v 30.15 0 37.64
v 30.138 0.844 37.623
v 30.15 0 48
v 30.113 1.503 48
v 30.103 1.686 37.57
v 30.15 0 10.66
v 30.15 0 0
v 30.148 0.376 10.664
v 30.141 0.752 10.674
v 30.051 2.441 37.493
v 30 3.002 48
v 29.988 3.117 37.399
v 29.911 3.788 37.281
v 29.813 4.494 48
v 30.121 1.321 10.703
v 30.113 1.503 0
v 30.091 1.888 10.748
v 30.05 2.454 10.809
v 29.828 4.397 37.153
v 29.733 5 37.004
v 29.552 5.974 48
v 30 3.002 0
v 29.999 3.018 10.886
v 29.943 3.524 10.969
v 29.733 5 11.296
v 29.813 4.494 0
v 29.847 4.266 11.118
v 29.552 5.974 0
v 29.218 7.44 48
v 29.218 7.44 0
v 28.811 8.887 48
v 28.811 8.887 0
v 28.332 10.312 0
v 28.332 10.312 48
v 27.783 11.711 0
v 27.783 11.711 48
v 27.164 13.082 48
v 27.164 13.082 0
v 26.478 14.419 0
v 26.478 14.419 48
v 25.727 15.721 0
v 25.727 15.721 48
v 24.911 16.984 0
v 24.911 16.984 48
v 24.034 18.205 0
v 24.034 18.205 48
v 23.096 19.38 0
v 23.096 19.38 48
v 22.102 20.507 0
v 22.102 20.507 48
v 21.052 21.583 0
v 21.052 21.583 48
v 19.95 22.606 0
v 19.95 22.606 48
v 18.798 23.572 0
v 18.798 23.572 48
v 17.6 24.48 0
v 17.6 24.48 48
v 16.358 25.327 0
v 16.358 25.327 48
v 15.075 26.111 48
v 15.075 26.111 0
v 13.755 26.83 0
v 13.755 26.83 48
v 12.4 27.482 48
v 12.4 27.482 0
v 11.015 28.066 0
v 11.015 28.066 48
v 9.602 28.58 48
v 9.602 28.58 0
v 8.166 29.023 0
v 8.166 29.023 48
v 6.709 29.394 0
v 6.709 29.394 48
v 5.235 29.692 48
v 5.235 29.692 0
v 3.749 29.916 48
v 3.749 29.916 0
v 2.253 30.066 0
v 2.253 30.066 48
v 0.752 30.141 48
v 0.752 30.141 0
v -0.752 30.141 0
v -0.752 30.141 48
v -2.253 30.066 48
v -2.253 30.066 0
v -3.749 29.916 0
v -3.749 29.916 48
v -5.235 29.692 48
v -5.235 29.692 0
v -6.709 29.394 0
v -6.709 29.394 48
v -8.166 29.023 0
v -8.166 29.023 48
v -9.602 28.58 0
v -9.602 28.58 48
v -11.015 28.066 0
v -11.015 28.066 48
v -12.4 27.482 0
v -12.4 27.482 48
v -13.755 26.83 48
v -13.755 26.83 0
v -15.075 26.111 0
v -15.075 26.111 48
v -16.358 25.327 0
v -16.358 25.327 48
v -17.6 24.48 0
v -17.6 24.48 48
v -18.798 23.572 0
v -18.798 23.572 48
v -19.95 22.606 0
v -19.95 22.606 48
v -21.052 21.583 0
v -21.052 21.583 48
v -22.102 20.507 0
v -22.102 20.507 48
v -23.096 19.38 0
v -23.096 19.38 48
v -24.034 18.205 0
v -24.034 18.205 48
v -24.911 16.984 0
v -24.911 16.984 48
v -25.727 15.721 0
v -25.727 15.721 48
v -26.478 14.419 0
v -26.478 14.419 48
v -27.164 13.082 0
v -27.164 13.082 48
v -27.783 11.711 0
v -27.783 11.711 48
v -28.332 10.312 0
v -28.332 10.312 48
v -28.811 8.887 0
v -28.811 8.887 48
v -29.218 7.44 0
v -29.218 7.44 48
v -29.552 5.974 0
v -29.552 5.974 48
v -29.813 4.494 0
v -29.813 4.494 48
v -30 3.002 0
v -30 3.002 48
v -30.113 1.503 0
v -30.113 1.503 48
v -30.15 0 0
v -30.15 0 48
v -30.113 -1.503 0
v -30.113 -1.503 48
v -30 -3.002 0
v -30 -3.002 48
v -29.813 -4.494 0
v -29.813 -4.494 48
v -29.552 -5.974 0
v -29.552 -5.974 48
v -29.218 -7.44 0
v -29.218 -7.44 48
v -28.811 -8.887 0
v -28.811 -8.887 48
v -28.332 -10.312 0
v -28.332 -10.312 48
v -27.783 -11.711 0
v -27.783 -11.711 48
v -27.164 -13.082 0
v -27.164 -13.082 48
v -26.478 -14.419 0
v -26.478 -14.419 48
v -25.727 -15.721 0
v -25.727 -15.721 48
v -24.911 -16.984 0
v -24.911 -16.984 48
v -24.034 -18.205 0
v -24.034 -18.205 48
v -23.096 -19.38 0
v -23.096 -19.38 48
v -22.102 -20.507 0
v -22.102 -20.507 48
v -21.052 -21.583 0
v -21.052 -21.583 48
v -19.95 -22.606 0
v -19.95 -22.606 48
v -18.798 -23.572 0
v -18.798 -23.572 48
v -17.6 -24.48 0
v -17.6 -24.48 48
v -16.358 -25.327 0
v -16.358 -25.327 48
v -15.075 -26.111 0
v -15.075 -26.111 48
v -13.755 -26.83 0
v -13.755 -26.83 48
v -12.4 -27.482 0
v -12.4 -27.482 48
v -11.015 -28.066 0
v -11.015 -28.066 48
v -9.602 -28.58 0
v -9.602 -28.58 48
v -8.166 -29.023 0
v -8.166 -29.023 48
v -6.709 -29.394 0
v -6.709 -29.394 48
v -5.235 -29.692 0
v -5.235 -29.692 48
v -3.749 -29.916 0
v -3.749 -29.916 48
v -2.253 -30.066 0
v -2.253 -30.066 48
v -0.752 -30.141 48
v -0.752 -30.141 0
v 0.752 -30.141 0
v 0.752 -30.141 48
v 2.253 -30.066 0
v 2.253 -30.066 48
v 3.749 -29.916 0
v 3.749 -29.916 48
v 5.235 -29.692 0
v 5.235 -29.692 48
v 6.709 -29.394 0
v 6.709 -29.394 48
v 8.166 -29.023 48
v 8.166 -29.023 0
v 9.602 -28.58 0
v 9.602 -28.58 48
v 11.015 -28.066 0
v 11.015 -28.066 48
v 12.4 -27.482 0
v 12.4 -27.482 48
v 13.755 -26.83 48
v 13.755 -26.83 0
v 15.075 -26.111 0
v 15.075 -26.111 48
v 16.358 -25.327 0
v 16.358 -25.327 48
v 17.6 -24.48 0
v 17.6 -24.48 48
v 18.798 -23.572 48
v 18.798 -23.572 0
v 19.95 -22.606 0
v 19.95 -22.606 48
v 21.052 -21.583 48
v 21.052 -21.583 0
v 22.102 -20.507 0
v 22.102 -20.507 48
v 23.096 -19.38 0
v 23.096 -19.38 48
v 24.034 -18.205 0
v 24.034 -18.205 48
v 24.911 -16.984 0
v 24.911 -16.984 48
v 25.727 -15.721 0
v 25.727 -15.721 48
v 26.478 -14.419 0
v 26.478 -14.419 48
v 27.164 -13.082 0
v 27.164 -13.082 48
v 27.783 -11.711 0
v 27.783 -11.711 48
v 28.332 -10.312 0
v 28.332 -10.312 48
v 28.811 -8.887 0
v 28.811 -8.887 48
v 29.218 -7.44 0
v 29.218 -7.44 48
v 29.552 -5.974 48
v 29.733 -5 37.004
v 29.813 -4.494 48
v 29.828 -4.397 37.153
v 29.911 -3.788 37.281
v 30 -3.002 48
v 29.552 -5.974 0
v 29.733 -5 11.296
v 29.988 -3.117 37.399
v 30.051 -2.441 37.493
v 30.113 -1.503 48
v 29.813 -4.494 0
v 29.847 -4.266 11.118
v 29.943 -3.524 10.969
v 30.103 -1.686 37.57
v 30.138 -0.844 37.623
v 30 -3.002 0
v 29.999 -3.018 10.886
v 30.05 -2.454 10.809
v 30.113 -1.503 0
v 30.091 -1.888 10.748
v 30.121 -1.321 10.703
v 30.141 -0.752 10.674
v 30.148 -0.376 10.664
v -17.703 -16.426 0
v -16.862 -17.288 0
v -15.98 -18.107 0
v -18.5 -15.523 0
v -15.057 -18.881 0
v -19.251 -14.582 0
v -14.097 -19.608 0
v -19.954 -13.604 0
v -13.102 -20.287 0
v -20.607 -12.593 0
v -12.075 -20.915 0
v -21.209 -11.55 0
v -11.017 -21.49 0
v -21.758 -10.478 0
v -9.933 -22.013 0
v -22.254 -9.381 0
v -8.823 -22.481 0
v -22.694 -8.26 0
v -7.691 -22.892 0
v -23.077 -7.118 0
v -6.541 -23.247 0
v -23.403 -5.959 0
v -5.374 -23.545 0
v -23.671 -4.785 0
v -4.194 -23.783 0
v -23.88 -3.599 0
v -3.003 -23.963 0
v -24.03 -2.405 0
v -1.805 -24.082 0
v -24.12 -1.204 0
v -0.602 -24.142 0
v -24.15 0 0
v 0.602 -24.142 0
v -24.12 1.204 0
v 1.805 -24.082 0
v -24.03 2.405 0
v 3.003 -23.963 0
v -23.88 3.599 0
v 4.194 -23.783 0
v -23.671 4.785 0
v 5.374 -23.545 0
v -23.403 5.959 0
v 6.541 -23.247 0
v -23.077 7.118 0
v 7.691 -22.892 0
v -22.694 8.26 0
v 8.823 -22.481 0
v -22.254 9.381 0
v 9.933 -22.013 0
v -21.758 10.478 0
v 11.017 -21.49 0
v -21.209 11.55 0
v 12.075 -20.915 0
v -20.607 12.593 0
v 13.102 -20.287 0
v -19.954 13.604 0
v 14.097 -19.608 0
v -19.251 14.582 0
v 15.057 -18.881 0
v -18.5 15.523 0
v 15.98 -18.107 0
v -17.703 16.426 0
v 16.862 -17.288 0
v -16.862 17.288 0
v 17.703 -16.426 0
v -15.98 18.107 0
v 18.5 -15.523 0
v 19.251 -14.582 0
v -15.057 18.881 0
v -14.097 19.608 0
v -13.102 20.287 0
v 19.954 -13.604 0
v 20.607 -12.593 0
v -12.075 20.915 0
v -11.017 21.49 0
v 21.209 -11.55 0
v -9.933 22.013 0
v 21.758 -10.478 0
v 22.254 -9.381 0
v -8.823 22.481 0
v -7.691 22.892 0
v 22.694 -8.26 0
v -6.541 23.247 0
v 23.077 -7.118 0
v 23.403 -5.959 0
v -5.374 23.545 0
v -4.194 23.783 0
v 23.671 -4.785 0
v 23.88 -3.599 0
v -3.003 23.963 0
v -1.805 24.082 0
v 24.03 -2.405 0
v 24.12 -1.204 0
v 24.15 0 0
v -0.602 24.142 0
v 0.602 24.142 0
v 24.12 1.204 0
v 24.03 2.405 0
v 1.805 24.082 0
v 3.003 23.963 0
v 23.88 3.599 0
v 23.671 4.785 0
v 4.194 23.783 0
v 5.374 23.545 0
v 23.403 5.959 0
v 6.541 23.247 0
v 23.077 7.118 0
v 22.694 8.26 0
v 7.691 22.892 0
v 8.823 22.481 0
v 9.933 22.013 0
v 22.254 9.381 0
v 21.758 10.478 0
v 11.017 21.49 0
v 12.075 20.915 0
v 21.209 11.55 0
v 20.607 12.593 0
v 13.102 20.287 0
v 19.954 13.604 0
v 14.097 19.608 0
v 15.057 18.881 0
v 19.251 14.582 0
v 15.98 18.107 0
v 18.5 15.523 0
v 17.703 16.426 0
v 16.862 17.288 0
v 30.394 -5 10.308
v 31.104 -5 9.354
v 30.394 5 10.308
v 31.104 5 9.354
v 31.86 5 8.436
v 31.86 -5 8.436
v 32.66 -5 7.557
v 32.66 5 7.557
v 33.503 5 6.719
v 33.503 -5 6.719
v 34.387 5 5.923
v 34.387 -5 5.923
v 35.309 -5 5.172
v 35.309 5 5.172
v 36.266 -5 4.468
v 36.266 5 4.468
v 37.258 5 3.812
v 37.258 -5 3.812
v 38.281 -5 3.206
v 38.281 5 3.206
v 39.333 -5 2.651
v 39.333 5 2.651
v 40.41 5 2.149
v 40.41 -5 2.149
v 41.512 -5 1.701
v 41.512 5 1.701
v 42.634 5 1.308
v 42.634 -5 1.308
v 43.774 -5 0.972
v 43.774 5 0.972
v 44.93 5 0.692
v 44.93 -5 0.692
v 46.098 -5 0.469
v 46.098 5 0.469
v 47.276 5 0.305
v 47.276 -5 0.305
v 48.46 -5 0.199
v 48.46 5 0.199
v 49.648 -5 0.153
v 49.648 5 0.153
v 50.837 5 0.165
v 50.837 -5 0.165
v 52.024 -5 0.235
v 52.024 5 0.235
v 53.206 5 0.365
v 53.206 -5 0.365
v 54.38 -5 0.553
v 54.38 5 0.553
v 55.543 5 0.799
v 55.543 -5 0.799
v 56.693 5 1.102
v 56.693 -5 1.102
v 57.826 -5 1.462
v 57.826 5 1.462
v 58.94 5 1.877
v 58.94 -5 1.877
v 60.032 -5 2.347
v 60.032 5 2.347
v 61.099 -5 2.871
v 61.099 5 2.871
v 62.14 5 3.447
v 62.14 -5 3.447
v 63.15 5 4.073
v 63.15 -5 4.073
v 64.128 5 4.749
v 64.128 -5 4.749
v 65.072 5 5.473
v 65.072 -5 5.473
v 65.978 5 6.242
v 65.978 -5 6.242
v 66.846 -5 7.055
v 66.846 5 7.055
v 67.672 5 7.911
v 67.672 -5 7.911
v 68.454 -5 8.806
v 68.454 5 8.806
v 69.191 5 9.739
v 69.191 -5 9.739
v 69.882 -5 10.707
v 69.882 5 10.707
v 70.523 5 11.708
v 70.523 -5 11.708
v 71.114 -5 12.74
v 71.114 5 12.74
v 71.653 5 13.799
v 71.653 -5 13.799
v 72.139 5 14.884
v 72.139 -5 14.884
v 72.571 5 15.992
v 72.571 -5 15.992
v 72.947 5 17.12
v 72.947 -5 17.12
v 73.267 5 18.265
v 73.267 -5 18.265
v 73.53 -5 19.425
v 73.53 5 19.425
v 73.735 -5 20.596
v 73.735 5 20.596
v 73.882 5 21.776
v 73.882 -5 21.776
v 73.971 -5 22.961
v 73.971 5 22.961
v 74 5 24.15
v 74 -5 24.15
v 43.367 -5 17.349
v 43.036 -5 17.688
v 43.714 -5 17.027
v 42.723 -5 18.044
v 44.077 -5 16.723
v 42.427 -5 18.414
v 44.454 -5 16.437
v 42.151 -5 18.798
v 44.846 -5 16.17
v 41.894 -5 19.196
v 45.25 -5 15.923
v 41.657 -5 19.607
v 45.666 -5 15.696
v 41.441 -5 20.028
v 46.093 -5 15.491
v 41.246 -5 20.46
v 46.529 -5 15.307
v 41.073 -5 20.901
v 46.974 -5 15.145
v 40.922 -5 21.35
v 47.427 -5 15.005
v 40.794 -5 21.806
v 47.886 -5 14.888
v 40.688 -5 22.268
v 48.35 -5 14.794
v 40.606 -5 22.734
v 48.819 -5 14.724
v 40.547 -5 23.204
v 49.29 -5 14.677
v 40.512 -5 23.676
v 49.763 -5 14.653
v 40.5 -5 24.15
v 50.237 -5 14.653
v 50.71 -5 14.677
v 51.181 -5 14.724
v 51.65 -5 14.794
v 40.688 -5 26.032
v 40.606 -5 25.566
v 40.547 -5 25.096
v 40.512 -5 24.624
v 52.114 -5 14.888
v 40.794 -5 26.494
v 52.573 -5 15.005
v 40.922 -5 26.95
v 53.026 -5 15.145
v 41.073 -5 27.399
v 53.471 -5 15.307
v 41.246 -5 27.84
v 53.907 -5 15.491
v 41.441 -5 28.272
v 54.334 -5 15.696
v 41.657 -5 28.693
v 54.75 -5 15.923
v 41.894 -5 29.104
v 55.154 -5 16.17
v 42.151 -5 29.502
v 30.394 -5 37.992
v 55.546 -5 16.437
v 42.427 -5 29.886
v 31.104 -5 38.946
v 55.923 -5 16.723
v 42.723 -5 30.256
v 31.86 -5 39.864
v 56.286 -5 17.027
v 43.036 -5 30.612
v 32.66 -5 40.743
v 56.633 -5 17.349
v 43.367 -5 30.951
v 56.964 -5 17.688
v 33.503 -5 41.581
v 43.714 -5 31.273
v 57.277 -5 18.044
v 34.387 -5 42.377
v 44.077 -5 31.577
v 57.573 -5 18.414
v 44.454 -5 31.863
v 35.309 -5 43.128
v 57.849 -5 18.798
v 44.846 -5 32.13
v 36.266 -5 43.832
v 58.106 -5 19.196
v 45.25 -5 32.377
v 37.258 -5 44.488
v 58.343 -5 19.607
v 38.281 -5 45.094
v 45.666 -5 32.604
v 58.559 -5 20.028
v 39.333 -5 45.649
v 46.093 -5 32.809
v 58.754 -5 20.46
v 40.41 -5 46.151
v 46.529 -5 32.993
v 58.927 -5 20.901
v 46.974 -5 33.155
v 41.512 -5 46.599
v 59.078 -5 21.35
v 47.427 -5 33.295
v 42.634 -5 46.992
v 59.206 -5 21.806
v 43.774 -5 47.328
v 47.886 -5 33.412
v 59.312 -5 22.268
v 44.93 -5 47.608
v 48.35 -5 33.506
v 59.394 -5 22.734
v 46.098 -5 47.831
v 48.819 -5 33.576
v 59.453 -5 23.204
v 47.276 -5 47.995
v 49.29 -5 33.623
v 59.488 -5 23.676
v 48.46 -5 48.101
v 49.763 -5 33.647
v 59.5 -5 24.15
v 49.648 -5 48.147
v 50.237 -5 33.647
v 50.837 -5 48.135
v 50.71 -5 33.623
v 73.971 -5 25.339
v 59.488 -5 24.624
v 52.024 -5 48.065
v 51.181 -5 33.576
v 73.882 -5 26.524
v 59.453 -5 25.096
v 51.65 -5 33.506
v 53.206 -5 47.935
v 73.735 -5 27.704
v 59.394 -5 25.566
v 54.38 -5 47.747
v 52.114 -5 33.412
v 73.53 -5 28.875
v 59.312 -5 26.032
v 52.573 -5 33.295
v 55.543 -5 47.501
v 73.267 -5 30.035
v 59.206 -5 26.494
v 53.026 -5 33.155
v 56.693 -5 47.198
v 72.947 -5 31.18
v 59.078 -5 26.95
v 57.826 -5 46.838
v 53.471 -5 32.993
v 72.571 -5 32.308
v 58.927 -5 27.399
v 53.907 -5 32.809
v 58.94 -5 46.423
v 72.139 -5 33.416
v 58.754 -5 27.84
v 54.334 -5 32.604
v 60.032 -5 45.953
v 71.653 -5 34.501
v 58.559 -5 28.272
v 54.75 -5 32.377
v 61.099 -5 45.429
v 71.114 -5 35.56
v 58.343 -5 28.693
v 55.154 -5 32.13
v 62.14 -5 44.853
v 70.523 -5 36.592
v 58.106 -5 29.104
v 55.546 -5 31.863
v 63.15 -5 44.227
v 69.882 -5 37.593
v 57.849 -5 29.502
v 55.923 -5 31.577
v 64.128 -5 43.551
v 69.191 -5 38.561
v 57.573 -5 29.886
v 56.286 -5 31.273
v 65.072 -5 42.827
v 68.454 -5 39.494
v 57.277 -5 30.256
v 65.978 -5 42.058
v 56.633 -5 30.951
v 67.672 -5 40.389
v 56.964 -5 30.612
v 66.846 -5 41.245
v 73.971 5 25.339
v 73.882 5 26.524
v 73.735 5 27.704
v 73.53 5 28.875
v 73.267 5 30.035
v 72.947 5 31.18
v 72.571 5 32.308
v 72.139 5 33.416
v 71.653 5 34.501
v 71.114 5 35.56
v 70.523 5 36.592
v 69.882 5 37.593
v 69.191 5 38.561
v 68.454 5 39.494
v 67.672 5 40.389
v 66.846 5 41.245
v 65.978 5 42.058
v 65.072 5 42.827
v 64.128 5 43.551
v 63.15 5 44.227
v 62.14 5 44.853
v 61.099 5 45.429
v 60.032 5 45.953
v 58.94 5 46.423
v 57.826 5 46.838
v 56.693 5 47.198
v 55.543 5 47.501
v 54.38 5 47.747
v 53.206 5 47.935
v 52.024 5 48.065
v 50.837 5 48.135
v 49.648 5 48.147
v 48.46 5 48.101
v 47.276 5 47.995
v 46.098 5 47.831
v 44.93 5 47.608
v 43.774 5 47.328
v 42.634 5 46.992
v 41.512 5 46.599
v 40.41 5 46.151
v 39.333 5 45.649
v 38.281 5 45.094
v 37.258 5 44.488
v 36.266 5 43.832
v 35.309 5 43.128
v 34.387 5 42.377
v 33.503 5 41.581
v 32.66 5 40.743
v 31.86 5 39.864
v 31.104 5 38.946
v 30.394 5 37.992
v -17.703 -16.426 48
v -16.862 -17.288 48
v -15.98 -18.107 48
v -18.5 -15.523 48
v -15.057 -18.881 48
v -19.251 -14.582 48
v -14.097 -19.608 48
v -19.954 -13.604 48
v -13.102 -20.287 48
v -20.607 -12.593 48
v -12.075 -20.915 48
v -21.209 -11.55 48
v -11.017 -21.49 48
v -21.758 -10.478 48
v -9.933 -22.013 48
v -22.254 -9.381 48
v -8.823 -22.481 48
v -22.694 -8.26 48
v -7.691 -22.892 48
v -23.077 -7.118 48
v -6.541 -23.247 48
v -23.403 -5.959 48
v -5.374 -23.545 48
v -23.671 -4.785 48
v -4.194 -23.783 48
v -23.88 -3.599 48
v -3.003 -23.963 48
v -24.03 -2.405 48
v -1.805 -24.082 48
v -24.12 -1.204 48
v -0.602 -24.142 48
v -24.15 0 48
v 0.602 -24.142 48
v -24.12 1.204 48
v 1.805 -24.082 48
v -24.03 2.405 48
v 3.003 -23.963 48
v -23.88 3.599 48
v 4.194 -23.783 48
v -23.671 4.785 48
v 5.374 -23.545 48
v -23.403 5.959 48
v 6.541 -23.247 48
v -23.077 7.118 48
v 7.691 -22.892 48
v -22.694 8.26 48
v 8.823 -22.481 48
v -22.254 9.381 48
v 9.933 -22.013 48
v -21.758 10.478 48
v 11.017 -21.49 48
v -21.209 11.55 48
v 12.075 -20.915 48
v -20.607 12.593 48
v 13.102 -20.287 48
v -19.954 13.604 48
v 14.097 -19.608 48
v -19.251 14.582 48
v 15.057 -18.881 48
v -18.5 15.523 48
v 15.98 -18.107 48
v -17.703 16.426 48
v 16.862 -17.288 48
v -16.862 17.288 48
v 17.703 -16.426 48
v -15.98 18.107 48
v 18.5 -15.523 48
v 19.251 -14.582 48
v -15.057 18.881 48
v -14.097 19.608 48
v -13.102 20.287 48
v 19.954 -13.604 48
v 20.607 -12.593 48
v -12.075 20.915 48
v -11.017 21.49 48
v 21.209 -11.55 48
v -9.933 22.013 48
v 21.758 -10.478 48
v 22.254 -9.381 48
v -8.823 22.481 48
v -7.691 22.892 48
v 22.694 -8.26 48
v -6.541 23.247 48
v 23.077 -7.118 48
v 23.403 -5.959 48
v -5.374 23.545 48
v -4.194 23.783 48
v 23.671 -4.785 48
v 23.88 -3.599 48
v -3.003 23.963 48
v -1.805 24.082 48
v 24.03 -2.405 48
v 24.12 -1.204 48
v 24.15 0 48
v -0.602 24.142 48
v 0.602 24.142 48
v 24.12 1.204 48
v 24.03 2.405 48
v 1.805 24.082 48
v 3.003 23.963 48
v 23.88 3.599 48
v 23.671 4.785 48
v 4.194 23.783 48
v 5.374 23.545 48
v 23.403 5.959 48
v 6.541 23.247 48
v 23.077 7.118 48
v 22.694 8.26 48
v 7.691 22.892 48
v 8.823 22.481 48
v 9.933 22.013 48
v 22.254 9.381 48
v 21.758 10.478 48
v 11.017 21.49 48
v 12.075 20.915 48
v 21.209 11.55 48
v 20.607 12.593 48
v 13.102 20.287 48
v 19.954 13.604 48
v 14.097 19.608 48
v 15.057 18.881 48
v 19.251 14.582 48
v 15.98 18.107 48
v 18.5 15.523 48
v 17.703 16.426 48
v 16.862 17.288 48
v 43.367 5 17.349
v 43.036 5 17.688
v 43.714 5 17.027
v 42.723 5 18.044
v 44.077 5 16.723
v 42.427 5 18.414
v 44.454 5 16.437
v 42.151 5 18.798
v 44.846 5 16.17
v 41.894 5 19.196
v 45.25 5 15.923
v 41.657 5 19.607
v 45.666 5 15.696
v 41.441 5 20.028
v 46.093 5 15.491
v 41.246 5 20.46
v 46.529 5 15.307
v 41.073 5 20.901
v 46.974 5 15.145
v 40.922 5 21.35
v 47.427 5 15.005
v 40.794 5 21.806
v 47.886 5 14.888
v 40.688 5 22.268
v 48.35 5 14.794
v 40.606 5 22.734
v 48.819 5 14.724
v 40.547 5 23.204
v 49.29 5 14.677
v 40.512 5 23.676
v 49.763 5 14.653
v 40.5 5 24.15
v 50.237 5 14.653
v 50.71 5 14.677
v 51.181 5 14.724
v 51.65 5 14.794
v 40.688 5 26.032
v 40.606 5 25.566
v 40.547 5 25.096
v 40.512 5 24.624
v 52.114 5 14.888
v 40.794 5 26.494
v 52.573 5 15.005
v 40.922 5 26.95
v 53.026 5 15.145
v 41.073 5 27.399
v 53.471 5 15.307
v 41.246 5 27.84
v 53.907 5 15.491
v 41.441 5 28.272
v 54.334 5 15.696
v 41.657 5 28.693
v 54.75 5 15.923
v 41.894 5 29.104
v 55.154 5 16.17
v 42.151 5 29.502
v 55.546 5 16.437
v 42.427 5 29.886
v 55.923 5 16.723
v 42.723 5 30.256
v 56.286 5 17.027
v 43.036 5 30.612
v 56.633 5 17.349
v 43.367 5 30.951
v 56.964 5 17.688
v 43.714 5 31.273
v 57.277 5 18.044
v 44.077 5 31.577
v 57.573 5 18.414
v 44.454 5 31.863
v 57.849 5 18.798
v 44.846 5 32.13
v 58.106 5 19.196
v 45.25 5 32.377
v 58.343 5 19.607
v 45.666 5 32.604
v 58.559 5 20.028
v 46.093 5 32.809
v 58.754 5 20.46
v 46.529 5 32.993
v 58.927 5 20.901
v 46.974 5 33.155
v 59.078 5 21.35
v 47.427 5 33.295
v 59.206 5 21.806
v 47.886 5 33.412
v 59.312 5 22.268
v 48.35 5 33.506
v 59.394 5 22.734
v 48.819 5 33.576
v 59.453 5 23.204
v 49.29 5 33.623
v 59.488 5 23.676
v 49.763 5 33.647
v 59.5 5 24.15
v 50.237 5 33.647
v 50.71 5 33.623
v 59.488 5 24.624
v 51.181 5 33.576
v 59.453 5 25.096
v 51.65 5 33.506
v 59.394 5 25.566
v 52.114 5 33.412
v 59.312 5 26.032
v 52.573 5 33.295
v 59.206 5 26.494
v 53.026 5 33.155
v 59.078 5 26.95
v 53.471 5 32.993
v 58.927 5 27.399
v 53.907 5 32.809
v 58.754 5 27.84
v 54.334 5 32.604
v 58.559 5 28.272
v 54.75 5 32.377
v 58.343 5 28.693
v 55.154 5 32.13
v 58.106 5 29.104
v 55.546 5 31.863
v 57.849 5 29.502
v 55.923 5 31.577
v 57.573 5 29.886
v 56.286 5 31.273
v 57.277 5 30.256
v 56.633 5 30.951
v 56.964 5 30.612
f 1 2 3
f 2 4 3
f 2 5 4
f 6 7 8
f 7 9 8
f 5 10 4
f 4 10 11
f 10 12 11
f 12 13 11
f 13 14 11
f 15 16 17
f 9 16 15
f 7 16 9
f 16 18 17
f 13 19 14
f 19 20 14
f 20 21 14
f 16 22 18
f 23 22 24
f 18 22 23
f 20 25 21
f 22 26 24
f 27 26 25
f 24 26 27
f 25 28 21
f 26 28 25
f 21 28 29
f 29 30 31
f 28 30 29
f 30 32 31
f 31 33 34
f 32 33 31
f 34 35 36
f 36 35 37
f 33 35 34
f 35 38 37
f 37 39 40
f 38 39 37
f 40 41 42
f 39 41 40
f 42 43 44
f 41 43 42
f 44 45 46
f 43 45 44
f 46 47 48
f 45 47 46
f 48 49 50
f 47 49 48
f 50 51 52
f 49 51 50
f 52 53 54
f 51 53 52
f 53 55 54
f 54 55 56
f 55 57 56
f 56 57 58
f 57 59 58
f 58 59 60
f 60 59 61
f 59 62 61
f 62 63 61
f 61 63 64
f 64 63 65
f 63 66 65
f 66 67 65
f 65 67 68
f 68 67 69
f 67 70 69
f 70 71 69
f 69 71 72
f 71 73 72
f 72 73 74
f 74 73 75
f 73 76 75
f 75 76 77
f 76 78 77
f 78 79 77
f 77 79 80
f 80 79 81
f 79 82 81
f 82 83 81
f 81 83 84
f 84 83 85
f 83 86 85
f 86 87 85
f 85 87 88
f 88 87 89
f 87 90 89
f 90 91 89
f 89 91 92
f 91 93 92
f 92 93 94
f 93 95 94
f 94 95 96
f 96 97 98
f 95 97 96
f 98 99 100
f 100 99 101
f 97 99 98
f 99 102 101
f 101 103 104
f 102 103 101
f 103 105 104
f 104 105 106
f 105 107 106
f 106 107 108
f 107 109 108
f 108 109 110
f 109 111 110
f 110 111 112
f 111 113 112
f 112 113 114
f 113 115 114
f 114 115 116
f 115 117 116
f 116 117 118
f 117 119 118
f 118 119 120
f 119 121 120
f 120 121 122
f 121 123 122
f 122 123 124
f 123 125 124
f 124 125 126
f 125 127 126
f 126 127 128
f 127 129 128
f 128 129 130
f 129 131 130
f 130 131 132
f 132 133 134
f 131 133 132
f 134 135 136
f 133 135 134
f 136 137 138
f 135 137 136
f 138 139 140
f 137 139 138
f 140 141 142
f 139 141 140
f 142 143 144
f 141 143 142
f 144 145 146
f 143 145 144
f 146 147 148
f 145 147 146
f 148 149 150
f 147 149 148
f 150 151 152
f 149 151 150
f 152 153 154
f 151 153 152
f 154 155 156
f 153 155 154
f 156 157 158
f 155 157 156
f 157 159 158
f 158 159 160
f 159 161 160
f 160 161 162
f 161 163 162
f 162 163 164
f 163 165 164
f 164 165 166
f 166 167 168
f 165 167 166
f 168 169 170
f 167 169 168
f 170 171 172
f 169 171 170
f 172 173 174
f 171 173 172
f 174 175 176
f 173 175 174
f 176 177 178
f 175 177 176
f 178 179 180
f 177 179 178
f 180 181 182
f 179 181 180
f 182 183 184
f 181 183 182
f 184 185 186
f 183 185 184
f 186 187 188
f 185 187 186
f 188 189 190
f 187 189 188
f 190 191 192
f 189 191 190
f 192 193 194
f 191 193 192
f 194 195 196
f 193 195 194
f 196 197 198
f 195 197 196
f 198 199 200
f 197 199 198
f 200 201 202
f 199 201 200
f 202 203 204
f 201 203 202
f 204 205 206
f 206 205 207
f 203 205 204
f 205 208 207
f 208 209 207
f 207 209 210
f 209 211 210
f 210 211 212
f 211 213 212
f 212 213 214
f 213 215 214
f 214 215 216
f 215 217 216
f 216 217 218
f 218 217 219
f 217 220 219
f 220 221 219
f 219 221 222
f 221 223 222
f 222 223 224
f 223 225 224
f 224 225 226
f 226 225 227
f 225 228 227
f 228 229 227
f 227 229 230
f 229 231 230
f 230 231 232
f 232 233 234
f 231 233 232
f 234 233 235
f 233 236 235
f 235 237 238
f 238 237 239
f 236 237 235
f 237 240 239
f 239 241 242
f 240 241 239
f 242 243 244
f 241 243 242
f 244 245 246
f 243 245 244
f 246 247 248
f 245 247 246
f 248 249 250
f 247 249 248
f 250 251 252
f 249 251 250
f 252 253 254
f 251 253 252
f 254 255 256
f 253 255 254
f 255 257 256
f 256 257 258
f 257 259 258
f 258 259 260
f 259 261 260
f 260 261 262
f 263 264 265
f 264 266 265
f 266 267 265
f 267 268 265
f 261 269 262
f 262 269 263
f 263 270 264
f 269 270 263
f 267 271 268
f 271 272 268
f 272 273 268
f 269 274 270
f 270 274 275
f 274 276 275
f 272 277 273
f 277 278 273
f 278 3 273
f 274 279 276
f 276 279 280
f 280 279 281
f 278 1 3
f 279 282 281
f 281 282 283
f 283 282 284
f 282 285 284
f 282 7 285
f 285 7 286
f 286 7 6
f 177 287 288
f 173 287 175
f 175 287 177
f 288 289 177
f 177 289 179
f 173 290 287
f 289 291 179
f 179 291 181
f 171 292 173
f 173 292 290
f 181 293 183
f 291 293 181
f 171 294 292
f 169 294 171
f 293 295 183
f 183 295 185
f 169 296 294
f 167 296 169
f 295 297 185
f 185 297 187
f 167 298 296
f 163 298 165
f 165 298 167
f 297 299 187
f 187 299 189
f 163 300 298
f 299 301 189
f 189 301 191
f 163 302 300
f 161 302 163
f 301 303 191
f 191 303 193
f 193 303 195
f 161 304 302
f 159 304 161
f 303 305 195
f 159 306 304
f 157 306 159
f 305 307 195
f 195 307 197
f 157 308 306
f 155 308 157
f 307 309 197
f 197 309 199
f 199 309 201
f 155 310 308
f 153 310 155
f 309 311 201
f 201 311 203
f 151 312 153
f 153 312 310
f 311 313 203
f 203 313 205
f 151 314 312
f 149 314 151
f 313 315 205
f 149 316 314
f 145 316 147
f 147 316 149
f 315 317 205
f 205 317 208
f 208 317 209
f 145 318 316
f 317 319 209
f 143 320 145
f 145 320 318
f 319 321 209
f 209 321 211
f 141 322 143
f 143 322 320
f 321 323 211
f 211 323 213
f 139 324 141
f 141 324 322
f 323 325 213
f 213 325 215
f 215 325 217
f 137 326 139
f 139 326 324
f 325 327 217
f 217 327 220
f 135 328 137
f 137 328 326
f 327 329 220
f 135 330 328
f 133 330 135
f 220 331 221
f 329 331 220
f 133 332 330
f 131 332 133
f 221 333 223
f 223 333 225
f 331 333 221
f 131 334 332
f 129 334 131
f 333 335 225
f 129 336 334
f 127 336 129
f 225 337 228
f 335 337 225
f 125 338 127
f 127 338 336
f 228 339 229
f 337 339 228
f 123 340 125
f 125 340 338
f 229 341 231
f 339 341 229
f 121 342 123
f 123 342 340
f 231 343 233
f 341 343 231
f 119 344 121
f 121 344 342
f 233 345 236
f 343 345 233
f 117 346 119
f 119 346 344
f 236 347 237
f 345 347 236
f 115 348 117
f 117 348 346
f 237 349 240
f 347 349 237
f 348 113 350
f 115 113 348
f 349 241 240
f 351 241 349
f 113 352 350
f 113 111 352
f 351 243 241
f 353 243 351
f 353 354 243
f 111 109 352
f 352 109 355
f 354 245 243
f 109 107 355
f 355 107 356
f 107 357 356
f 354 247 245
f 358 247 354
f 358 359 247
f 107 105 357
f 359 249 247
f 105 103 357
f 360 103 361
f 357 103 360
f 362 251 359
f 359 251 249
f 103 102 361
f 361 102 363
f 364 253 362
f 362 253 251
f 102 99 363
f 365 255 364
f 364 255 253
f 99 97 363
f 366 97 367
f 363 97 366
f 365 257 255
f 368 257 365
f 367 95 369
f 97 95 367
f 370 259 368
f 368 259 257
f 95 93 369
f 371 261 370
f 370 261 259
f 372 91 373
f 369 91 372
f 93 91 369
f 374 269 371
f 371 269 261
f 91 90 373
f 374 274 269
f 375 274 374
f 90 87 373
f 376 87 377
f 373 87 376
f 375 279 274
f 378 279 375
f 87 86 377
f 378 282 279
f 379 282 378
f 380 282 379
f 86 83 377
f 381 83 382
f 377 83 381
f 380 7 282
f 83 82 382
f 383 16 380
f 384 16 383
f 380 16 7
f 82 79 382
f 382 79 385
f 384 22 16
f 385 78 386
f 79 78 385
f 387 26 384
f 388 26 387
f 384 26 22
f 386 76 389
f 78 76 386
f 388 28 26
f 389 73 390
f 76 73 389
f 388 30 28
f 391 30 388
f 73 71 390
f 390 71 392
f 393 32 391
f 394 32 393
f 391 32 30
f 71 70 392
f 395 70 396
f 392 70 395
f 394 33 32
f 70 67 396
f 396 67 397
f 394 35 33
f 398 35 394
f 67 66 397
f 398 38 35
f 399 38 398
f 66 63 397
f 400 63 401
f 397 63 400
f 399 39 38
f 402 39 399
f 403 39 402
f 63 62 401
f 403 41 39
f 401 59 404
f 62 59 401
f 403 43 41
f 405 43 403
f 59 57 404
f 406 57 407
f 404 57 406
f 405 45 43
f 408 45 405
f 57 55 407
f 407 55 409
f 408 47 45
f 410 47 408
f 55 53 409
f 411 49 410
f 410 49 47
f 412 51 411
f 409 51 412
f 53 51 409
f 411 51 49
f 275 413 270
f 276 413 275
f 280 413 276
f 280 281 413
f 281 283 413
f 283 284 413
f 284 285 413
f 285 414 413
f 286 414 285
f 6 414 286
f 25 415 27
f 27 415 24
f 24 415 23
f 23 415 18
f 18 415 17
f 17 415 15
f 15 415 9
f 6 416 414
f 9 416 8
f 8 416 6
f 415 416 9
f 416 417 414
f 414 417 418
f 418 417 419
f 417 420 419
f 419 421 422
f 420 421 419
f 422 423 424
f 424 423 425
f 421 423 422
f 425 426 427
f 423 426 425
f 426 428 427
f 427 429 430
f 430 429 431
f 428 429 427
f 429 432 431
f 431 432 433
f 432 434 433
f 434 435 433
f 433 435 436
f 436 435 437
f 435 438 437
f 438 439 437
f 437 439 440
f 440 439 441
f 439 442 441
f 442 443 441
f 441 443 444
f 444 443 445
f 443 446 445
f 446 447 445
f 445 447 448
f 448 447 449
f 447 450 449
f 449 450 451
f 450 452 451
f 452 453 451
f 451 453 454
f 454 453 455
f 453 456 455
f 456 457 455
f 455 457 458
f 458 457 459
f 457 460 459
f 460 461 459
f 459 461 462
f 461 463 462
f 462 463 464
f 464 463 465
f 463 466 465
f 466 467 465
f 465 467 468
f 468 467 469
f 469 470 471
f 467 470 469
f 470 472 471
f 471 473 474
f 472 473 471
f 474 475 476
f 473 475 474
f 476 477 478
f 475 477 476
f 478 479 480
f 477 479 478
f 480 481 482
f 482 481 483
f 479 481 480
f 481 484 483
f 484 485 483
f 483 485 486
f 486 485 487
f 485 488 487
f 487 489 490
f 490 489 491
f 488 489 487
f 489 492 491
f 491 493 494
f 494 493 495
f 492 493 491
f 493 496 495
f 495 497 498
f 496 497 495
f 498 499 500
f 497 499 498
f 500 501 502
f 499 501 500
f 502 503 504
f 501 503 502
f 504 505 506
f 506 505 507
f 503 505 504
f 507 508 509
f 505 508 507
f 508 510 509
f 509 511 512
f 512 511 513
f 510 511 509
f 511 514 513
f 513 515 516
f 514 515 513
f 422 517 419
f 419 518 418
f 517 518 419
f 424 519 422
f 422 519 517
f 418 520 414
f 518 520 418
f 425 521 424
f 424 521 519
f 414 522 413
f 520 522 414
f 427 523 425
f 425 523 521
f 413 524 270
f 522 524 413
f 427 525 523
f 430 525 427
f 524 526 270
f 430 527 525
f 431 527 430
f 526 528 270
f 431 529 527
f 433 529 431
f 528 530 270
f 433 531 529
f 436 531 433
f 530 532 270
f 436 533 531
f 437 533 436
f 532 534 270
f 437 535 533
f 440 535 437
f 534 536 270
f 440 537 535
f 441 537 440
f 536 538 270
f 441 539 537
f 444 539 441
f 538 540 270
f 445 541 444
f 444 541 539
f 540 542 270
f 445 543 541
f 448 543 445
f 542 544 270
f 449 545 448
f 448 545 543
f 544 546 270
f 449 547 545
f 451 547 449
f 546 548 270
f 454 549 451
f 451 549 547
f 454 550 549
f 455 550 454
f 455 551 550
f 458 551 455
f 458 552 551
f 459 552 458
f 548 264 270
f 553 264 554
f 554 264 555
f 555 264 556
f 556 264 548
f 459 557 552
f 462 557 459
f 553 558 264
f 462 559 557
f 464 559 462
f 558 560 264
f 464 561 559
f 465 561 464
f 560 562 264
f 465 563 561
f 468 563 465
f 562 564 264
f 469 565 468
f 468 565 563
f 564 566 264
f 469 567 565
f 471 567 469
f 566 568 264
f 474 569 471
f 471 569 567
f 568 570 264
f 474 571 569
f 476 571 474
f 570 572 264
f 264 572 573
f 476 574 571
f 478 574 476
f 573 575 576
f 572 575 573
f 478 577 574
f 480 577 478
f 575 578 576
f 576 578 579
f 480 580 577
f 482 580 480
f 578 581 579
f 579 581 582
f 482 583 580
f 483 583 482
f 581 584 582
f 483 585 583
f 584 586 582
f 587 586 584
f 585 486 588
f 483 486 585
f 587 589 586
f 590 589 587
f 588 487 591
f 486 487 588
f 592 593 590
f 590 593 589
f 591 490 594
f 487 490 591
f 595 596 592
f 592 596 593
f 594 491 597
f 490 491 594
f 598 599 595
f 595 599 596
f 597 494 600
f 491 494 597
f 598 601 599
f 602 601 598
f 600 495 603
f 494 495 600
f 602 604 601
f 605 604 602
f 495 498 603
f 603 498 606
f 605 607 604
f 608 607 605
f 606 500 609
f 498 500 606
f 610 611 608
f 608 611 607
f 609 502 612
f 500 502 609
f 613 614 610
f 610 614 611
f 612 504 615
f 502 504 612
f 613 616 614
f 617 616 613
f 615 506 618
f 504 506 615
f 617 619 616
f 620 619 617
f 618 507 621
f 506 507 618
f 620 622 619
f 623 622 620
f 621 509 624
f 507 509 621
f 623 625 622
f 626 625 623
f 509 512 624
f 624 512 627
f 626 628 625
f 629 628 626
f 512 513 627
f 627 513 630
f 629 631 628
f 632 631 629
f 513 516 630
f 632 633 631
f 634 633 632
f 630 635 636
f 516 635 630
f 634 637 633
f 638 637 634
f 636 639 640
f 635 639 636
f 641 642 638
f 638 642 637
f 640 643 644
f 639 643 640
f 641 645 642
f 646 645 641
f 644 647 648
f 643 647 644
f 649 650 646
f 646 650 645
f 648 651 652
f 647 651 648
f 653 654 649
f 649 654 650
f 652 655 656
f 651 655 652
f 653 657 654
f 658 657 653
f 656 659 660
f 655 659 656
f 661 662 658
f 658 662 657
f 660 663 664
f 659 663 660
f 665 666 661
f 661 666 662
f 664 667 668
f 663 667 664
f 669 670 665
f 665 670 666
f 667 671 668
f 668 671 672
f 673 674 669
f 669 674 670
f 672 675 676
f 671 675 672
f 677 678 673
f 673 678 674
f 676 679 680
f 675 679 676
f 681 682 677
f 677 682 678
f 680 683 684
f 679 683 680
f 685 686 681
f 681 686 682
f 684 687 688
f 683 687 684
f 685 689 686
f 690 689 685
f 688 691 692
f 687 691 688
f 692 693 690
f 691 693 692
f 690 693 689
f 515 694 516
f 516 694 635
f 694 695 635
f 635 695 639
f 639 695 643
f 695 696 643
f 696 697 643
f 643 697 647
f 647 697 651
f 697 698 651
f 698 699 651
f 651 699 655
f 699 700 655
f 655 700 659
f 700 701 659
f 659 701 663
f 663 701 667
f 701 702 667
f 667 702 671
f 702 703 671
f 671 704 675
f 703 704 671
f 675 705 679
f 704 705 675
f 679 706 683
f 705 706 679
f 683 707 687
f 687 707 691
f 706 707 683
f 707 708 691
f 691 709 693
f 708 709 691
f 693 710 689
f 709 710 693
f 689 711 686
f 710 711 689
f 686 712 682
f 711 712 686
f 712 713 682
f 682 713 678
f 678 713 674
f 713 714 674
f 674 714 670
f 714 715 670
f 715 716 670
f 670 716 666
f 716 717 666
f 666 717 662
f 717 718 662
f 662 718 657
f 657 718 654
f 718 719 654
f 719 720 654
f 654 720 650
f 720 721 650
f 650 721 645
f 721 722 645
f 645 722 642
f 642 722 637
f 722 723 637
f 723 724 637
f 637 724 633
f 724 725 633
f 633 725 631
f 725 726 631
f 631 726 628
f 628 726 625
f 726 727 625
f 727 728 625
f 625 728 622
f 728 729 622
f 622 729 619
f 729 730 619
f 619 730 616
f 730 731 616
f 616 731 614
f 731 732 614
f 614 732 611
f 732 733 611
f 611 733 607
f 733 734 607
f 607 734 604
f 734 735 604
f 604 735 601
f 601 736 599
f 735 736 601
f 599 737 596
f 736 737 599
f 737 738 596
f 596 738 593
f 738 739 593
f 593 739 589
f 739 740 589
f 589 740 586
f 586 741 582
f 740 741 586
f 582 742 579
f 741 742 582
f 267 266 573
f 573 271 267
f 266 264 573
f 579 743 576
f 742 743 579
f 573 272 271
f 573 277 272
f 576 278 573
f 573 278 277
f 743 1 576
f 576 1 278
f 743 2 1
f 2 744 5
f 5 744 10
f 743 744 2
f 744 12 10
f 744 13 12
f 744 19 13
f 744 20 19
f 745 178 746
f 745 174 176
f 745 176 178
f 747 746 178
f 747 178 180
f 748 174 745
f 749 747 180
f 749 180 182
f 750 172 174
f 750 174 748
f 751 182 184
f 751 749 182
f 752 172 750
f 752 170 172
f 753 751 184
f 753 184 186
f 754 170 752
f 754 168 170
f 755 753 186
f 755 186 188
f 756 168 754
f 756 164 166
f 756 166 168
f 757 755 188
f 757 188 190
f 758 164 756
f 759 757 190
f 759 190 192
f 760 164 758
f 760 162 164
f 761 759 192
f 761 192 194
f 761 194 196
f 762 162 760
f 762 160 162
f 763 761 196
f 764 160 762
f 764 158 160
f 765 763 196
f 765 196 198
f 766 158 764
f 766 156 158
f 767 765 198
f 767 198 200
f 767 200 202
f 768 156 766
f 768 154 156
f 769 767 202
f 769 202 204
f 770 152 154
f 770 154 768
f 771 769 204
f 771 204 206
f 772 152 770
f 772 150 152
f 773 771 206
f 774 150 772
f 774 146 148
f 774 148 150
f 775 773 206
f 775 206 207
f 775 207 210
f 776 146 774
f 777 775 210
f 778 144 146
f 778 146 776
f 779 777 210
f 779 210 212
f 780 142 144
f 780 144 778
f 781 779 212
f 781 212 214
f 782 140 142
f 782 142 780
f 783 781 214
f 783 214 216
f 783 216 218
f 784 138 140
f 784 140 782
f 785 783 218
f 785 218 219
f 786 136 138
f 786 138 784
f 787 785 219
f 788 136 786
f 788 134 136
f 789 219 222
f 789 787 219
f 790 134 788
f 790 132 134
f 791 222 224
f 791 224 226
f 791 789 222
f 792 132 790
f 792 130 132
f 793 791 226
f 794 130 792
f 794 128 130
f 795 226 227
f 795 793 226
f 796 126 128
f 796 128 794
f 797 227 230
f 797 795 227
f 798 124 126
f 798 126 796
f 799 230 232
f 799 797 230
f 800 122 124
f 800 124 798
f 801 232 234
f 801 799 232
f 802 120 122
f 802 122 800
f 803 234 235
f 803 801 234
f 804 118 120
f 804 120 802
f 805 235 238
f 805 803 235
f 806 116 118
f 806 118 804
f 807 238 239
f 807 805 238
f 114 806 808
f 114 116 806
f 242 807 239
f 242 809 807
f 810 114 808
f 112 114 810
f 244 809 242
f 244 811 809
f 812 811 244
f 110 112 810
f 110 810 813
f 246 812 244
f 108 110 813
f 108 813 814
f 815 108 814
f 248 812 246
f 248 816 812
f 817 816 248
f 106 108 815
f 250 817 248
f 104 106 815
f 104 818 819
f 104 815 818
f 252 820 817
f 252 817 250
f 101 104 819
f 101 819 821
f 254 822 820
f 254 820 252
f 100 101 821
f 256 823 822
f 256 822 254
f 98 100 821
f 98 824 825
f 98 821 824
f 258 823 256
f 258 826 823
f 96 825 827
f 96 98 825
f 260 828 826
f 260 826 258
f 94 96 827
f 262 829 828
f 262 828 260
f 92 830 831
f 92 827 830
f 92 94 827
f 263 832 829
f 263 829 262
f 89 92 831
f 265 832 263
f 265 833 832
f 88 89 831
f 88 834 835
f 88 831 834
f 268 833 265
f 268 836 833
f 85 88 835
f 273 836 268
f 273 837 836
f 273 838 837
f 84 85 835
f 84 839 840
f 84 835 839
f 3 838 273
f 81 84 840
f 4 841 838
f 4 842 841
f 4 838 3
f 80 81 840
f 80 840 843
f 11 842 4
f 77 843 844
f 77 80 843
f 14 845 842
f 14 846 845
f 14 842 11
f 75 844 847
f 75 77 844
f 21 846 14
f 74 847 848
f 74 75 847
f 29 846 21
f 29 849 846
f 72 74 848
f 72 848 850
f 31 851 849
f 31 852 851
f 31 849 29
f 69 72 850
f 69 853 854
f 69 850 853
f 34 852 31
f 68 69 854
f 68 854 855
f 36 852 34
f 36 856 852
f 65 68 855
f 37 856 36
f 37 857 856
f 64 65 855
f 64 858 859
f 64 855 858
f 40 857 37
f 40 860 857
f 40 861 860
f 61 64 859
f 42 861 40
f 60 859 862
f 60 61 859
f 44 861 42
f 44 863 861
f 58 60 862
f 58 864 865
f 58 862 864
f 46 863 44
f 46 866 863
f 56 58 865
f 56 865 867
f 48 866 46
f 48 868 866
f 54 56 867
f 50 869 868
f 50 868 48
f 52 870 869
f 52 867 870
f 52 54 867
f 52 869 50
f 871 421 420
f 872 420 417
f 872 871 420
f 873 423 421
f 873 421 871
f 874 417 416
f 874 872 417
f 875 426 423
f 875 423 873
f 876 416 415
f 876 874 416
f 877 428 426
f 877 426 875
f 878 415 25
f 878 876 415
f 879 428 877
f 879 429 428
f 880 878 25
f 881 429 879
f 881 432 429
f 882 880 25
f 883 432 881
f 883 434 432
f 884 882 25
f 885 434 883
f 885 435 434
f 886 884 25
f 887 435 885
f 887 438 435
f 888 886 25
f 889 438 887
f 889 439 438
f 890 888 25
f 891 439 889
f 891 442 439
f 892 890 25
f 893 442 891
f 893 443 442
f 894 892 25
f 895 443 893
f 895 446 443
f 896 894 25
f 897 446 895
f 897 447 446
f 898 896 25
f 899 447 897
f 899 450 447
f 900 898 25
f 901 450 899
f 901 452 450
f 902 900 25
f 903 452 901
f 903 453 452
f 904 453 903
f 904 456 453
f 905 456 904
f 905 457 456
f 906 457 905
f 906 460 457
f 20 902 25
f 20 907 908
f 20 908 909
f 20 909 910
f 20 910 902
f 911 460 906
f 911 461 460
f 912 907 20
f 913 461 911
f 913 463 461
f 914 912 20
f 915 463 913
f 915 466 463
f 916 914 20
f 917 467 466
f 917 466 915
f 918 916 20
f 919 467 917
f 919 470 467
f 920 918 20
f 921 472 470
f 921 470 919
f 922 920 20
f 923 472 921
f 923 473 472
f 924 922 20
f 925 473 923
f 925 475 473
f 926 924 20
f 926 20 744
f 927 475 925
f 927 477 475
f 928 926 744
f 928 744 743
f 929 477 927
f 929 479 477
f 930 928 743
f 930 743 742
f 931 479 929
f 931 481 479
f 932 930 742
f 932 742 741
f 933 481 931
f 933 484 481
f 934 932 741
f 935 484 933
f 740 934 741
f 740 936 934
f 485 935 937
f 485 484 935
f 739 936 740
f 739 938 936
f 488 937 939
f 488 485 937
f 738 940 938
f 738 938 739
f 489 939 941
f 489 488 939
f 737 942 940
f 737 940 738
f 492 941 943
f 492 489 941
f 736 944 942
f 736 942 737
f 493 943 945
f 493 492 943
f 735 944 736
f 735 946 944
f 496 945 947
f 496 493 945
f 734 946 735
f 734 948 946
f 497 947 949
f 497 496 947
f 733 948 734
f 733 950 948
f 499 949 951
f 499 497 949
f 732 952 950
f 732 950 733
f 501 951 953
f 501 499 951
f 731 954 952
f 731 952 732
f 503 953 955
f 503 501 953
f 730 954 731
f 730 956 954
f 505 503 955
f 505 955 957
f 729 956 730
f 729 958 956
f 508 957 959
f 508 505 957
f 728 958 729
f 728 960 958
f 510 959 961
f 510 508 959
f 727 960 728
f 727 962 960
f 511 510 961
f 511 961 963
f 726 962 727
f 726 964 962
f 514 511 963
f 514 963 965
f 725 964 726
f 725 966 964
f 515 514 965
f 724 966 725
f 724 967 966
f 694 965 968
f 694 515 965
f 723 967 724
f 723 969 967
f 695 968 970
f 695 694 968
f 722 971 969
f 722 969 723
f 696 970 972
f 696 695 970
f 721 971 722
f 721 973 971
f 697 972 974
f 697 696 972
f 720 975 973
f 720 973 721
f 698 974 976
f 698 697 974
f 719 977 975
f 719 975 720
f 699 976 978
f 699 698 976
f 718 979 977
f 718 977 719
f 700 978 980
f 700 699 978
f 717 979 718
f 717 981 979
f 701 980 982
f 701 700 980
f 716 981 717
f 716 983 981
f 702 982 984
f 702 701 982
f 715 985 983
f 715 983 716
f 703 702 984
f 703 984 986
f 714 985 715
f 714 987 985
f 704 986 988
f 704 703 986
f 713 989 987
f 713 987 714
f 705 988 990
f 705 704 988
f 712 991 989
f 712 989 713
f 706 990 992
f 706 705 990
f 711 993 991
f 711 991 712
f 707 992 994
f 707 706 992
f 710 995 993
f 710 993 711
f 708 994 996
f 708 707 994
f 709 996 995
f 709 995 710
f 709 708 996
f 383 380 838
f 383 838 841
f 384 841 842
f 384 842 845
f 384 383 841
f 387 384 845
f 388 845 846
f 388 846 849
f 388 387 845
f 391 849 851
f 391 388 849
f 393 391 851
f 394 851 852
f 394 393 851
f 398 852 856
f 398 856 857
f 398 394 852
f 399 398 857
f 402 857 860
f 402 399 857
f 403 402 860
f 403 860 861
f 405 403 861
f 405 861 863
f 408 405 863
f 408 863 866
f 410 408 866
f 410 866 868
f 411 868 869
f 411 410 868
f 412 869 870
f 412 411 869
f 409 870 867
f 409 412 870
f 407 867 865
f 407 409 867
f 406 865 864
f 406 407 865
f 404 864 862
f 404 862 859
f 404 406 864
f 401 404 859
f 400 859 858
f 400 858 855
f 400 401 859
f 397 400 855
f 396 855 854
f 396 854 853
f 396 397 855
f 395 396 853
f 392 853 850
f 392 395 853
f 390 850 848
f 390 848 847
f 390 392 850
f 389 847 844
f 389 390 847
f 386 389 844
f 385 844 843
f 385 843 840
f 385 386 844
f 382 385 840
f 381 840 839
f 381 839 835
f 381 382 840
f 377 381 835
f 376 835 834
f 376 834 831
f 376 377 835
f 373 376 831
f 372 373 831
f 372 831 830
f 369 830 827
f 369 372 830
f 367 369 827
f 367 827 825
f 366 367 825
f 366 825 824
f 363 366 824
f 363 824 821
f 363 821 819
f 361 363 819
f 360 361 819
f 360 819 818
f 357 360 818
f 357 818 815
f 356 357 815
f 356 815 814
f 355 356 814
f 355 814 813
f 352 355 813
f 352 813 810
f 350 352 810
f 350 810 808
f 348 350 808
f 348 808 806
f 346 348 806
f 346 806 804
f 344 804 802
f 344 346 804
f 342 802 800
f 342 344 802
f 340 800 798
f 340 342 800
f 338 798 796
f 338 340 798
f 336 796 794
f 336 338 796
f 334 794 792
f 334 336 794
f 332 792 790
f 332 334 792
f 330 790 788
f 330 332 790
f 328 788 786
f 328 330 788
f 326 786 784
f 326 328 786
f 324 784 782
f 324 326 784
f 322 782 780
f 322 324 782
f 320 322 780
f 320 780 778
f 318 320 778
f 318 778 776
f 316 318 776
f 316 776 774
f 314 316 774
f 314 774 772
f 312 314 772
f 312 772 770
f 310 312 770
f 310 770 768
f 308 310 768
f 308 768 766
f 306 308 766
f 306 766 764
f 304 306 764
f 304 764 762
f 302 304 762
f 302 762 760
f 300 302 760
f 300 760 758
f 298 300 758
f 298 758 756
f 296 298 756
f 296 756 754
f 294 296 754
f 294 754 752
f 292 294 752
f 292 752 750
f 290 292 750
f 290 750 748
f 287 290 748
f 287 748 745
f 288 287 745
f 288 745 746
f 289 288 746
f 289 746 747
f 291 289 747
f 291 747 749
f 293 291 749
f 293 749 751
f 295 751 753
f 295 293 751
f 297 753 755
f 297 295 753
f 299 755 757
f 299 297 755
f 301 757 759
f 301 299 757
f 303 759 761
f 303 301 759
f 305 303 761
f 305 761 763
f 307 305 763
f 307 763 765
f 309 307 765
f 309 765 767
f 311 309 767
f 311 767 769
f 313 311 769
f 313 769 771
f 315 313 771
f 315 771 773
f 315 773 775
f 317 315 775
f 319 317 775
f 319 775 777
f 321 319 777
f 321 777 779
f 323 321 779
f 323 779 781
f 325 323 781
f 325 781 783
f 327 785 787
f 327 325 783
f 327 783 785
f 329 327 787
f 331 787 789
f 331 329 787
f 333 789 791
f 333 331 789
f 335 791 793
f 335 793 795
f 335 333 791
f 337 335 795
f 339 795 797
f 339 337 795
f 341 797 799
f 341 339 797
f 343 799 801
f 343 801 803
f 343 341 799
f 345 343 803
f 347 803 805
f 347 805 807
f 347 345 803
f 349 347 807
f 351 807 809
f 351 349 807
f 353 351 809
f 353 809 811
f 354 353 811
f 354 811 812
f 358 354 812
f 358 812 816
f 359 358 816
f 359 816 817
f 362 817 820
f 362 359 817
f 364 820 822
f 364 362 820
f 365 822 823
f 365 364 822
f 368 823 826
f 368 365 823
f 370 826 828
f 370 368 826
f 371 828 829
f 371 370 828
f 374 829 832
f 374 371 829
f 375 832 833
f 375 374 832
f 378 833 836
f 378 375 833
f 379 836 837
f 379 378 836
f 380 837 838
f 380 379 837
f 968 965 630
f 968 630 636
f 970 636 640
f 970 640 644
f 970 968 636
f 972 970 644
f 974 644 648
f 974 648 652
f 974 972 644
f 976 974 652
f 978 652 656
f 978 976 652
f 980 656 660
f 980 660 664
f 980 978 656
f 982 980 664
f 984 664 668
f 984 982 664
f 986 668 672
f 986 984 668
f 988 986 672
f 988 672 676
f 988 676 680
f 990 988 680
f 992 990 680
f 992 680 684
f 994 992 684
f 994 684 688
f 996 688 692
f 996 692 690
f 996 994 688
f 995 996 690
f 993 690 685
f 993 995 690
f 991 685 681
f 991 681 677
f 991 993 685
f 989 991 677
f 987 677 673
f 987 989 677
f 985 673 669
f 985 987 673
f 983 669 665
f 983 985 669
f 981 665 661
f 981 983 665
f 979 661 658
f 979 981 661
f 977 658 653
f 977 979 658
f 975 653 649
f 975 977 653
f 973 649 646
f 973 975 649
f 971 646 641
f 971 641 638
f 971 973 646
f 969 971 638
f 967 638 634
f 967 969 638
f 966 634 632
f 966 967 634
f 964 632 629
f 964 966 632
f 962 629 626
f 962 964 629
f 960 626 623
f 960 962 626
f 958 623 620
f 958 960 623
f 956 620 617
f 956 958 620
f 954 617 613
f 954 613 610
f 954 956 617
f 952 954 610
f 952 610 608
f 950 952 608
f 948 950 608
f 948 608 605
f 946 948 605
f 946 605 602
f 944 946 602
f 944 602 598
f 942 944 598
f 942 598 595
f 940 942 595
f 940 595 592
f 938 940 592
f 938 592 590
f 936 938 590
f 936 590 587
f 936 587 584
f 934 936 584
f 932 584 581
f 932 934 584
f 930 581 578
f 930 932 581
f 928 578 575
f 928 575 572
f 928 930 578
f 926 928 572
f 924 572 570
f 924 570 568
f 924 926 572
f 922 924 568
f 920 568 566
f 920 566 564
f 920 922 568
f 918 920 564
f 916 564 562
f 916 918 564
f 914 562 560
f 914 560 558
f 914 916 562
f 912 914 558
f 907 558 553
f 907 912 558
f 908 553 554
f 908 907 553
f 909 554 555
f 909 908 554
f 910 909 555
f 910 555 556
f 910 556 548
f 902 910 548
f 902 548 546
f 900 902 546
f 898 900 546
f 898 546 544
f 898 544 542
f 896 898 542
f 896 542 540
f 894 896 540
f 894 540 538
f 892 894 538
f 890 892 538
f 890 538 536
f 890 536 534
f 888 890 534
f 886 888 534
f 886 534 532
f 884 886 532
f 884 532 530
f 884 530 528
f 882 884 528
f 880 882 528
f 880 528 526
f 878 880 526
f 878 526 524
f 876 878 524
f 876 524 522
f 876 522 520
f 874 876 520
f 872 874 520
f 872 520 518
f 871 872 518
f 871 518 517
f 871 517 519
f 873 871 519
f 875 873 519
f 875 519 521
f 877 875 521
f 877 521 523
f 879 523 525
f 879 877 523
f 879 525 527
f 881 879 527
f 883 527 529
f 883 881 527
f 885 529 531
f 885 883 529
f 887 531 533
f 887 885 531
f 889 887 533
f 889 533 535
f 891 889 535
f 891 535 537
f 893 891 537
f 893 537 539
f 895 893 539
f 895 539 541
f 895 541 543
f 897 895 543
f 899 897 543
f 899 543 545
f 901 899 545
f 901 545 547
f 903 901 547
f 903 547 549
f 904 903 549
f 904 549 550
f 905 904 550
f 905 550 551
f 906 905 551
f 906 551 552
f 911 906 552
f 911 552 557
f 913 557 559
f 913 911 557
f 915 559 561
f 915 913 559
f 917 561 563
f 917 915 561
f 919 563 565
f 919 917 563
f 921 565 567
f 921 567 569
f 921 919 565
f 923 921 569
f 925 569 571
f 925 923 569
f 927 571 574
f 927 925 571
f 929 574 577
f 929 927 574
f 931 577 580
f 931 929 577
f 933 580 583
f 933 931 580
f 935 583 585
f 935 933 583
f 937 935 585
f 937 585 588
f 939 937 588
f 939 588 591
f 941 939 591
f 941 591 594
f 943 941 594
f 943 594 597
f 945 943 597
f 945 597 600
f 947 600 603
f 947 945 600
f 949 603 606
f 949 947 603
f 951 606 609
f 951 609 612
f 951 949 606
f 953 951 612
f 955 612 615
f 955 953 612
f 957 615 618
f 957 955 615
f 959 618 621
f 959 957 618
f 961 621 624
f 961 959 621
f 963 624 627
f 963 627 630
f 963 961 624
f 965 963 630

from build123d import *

# Parameters (mm, degrees)
SKETCH_R      = 30.15
SKETCH_R_2    = 24.15
PAD_DEPTH     = 48
SKETCH001_R   = 24
SKETCH001_R_2 = 9.5
PAD001_DEPTH  = 10


with BuildPart() as part:
    # Sketch → Pad (new body)
    with BuildSketch(Plane.XY):
        Circle(SKETCH_R)
        Circle(SKETCH_R_2, mode=Mode.SUBTRACT)
    extrude(amount=PAD_DEPTH)

    # Sketch001 → Pad001 (join)
    with BuildSketch(Plane.XZ.offset(-5)):
        with Locations((50, 24.15)):
            Circle(SKETCH001_R)
        with Locations((50, 24.15)):
            Circle(SKETCH001_R_2, mode=Mode.SUBTRACT)
    extrude(amount=PAD001_DEPTH)


solid = part.part
